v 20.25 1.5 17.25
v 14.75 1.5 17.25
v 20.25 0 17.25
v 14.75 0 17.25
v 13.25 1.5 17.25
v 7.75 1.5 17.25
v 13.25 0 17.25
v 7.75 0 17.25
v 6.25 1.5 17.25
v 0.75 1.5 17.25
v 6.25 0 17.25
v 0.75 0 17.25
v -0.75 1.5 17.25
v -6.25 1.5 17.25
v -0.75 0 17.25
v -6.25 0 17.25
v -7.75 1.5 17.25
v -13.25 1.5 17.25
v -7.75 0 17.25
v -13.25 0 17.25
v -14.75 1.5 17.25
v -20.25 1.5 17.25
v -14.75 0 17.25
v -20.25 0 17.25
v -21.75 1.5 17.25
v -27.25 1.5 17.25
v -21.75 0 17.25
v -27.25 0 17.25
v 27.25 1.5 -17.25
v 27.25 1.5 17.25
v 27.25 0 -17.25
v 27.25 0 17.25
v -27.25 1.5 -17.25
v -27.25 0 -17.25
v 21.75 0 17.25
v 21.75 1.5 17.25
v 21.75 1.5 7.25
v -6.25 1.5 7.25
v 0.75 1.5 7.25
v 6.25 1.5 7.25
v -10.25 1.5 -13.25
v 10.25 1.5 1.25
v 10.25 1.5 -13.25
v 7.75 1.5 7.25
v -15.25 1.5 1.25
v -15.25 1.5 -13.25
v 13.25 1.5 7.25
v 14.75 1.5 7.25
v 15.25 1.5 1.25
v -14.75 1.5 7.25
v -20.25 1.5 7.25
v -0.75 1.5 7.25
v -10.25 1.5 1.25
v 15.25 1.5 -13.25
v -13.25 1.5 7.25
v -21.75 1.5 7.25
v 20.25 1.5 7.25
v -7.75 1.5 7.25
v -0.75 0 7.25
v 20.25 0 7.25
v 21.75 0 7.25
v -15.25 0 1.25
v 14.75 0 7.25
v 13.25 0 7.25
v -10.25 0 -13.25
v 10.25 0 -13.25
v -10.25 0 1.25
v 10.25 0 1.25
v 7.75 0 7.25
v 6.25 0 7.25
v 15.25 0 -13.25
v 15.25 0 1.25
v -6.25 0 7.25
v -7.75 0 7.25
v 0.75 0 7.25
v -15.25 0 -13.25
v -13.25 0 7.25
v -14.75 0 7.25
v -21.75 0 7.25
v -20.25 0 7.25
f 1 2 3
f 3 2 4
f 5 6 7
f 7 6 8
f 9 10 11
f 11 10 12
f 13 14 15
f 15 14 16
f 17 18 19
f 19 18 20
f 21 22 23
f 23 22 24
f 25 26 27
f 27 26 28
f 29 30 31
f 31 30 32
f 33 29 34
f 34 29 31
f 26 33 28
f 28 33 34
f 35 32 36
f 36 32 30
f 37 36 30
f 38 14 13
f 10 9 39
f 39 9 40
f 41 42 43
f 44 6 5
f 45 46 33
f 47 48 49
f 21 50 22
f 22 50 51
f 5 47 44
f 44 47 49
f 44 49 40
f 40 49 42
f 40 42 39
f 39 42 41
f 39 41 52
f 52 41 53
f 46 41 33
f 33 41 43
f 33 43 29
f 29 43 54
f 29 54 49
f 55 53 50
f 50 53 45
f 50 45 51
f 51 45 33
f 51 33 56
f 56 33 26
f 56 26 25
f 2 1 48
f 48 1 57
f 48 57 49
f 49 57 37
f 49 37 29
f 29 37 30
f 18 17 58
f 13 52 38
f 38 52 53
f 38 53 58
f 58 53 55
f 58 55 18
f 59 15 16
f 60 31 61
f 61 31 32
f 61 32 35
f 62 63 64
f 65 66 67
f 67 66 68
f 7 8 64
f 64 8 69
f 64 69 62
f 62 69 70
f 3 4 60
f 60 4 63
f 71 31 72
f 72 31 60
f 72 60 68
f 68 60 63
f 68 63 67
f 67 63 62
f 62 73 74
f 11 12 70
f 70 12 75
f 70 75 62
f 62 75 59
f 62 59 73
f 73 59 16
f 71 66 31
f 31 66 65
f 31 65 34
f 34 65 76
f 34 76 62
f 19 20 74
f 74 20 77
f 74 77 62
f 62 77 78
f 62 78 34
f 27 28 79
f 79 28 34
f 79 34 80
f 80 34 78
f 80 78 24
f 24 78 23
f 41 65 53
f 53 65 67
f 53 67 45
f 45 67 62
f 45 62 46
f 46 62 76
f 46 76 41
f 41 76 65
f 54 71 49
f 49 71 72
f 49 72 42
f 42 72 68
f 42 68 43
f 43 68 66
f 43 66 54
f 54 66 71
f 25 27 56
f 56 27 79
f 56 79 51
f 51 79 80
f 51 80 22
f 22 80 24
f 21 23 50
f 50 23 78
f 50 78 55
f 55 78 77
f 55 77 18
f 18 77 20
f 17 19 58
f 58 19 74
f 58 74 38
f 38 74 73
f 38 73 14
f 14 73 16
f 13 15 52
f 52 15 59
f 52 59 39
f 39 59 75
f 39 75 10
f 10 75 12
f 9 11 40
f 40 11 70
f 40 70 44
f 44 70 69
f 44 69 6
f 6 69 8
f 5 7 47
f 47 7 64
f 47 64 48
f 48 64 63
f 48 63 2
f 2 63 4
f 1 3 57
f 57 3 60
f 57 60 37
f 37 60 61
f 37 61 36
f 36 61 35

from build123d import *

# Parameters (mm, degrees)
SKETCH1_W           = 54.5
SKETCH1_H           = 34.5
BOSS_EXTRUDE1_DEPTH = 1.5
SKETCH6_W           = 5
SKETCH6_H           = 14.5
CUT_EXTRUDE1_DEPTH  = 2
SKETCH9_W           = 5
SKETCH9_H           = 14.5
CUT_EXTRUDE2_DEPTH  = 2
SKETCH27_W          = 1.5
SKETCH27_H          = 10
CUT_EXTRUDE3_DEPTH  = 2
SKETCH28_W          = 1.5
SKETCH28_H          = 10
CUT_EXTRUDE4_DEPTH  = 2
SKETCH29_W          = 1.5
SKETCH29_H          = 10
CUT_EXTRUDE5_DEPTH  = 2
SKETCH30_W          = 1.5
SKETCH30_H          = 10
CUT_EXTRUDE6_DEPTH  = 2
SKETCH31_W          = 1.5
SKETCH31_H          = 10
CUT_EXTRUDE7_DEPTH  = 2
SKETCH32_W          = 1.5
SKETCH32_H          = 10
CUT_EXTRUDE8_DEPTH  = 2
SKETCH33_W          = 1.5
SKETCH33_H          = 10
CUT_EXTRUDE9_DEPTH  = 2


with BuildPart() as part:
    # Sketch1 → Boss-Extrude1 (new body)
    with BuildSketch(Plane(origin=(0, 0, 0), x_dir=(1, 0, 0), z_dir=(0, 1, 0))):
        Rectangle(SKETCH1_W, SKETCH1_H)
    extrude(amount=BOSS_EXTRUDE1_DEPTH)

    # Sketch6 → Cut-Extrude1 (cut)
    with BuildSketch(Plane(origin=(0, 1.5, 0), x_dir=(1, 0, 0), z_dir=(0, 1, 0))):
        with Locations((-12.75, 6)):
            Rectangle(SKETCH6_W, SKETCH6_H)
    extrude(amount=-CUT_EXTRUDE1_DEPTH, mode=Mode.SUBTRACT)

    # Sketch9 → Cut-Extrude2 (cut)
    with BuildSketch(Plane(origin=(0, 1.5, 0), x_dir=(1, 0, 0), z_dir=(0, 1, 0))):
        with Locations((12.75, 6)):
            Rectangle(SKETCH9_W, SKETCH9_H)
    extrude(amount=-CUT_EXTRUDE2_DEPTH, mode=Mode.SUBTRACT)

    # Sketch27 → Cut-Extrude3 (cut)
    with BuildSketch(Plane(origin=(0, 1.5, 0), x_dir=(1, 0, 0), z_dir=(0, 1, 0))):
        with Locations((-21, -12.25)):
            Rectangle(SKETCH27_W, SKETCH27_H)
    extrude(amount=-CUT_EXTRUDE3_DEPTH, mode=Mode.SUBTRACT)

    # Sketch28 → Cut-Extrude4 (cut)
    with BuildSketch(Plane(origin=(0, 1.5, 0), x_dir=(1, 0, 0), z_dir=(0, 1, 0))):
        with Locations((-14, -12.25)):
            Rectangle(SKETCH28_W, SKETCH28_H)
    extrude(amount=-CUT_EXTRUDE4_DEPTH, mode=Mode.SUBTRACT)

    # Sketch29 → Cut-Extrude5 (cut)
    with BuildSketch(Plane(origin=(0, 1.5, 0), x_dir=(1, 0, 0), z_dir=(0, 1, 0))):
        with Locations((-7, -12.25)):
            Rectangle(SKETCH29_W, SKETCH29_H)
    extrude(amount=-CUT_EXTRUDE5_DEPTH, mode=Mode.SUBTRACT)

    # Sketch30 → Cut-Extrude6 (cut)
    with BuildSketch(Plane(origin=(0, 1.5, 0), x_dir=(1, 0, 0), z_dir=(0, 1, 0))):
        with Locations((0, -12.25)):
            Rectangle(SKETCH30_W, SKETCH30_H)
    extrude(amount=-CUT_EXTRUDE6_DEPTH, mode=Mode.SUBTRACT)

    # Sketch31 → Cut-Extrude7 (cut)
    with BuildSketch(Plane(origin=(0, 1.5, 0), x_dir=(1, 0, 0), z_dir=(0, 1, 0))):
        with Locations((7, -12.25)):
            Rectangle(SKETCH31_W, SKETCH31_H)
    extrude(amount=-CUT_EXTRUDE7_DEPTH, mode=Mode.SUBTRACT)

    # Sketch32 → Cut-Extrude8 (cut)
    with BuildSketch(Plane(origin=(0, 1.5, 0), x_dir=(1, 0, 0), z_dir=(0, 1, 0))):
        with Locations((14, -12.25)):
            Rectangle(SKETCH32_W, SKETCH32_H)
    extrude(amount=-CUT_EXTRUDE8_DEPTH, mode=Mode.SUBTRACT)

    # Sketch33 → Cut-Extrude9 (cut)
    with BuildSketch(Plane(origin=(0, 1.5, 0), x_dir=(1, 0, 0), z_dir=(0, 1, 0))):
        with Locations((21, -12.25)):
            Rectangle(SKETCH33_W, SKETCH33_H)
    extrude(amount=-CUT_EXTRUDE9_DEPTH, mode=Mode.SUBTRACT)


solid = part.part
